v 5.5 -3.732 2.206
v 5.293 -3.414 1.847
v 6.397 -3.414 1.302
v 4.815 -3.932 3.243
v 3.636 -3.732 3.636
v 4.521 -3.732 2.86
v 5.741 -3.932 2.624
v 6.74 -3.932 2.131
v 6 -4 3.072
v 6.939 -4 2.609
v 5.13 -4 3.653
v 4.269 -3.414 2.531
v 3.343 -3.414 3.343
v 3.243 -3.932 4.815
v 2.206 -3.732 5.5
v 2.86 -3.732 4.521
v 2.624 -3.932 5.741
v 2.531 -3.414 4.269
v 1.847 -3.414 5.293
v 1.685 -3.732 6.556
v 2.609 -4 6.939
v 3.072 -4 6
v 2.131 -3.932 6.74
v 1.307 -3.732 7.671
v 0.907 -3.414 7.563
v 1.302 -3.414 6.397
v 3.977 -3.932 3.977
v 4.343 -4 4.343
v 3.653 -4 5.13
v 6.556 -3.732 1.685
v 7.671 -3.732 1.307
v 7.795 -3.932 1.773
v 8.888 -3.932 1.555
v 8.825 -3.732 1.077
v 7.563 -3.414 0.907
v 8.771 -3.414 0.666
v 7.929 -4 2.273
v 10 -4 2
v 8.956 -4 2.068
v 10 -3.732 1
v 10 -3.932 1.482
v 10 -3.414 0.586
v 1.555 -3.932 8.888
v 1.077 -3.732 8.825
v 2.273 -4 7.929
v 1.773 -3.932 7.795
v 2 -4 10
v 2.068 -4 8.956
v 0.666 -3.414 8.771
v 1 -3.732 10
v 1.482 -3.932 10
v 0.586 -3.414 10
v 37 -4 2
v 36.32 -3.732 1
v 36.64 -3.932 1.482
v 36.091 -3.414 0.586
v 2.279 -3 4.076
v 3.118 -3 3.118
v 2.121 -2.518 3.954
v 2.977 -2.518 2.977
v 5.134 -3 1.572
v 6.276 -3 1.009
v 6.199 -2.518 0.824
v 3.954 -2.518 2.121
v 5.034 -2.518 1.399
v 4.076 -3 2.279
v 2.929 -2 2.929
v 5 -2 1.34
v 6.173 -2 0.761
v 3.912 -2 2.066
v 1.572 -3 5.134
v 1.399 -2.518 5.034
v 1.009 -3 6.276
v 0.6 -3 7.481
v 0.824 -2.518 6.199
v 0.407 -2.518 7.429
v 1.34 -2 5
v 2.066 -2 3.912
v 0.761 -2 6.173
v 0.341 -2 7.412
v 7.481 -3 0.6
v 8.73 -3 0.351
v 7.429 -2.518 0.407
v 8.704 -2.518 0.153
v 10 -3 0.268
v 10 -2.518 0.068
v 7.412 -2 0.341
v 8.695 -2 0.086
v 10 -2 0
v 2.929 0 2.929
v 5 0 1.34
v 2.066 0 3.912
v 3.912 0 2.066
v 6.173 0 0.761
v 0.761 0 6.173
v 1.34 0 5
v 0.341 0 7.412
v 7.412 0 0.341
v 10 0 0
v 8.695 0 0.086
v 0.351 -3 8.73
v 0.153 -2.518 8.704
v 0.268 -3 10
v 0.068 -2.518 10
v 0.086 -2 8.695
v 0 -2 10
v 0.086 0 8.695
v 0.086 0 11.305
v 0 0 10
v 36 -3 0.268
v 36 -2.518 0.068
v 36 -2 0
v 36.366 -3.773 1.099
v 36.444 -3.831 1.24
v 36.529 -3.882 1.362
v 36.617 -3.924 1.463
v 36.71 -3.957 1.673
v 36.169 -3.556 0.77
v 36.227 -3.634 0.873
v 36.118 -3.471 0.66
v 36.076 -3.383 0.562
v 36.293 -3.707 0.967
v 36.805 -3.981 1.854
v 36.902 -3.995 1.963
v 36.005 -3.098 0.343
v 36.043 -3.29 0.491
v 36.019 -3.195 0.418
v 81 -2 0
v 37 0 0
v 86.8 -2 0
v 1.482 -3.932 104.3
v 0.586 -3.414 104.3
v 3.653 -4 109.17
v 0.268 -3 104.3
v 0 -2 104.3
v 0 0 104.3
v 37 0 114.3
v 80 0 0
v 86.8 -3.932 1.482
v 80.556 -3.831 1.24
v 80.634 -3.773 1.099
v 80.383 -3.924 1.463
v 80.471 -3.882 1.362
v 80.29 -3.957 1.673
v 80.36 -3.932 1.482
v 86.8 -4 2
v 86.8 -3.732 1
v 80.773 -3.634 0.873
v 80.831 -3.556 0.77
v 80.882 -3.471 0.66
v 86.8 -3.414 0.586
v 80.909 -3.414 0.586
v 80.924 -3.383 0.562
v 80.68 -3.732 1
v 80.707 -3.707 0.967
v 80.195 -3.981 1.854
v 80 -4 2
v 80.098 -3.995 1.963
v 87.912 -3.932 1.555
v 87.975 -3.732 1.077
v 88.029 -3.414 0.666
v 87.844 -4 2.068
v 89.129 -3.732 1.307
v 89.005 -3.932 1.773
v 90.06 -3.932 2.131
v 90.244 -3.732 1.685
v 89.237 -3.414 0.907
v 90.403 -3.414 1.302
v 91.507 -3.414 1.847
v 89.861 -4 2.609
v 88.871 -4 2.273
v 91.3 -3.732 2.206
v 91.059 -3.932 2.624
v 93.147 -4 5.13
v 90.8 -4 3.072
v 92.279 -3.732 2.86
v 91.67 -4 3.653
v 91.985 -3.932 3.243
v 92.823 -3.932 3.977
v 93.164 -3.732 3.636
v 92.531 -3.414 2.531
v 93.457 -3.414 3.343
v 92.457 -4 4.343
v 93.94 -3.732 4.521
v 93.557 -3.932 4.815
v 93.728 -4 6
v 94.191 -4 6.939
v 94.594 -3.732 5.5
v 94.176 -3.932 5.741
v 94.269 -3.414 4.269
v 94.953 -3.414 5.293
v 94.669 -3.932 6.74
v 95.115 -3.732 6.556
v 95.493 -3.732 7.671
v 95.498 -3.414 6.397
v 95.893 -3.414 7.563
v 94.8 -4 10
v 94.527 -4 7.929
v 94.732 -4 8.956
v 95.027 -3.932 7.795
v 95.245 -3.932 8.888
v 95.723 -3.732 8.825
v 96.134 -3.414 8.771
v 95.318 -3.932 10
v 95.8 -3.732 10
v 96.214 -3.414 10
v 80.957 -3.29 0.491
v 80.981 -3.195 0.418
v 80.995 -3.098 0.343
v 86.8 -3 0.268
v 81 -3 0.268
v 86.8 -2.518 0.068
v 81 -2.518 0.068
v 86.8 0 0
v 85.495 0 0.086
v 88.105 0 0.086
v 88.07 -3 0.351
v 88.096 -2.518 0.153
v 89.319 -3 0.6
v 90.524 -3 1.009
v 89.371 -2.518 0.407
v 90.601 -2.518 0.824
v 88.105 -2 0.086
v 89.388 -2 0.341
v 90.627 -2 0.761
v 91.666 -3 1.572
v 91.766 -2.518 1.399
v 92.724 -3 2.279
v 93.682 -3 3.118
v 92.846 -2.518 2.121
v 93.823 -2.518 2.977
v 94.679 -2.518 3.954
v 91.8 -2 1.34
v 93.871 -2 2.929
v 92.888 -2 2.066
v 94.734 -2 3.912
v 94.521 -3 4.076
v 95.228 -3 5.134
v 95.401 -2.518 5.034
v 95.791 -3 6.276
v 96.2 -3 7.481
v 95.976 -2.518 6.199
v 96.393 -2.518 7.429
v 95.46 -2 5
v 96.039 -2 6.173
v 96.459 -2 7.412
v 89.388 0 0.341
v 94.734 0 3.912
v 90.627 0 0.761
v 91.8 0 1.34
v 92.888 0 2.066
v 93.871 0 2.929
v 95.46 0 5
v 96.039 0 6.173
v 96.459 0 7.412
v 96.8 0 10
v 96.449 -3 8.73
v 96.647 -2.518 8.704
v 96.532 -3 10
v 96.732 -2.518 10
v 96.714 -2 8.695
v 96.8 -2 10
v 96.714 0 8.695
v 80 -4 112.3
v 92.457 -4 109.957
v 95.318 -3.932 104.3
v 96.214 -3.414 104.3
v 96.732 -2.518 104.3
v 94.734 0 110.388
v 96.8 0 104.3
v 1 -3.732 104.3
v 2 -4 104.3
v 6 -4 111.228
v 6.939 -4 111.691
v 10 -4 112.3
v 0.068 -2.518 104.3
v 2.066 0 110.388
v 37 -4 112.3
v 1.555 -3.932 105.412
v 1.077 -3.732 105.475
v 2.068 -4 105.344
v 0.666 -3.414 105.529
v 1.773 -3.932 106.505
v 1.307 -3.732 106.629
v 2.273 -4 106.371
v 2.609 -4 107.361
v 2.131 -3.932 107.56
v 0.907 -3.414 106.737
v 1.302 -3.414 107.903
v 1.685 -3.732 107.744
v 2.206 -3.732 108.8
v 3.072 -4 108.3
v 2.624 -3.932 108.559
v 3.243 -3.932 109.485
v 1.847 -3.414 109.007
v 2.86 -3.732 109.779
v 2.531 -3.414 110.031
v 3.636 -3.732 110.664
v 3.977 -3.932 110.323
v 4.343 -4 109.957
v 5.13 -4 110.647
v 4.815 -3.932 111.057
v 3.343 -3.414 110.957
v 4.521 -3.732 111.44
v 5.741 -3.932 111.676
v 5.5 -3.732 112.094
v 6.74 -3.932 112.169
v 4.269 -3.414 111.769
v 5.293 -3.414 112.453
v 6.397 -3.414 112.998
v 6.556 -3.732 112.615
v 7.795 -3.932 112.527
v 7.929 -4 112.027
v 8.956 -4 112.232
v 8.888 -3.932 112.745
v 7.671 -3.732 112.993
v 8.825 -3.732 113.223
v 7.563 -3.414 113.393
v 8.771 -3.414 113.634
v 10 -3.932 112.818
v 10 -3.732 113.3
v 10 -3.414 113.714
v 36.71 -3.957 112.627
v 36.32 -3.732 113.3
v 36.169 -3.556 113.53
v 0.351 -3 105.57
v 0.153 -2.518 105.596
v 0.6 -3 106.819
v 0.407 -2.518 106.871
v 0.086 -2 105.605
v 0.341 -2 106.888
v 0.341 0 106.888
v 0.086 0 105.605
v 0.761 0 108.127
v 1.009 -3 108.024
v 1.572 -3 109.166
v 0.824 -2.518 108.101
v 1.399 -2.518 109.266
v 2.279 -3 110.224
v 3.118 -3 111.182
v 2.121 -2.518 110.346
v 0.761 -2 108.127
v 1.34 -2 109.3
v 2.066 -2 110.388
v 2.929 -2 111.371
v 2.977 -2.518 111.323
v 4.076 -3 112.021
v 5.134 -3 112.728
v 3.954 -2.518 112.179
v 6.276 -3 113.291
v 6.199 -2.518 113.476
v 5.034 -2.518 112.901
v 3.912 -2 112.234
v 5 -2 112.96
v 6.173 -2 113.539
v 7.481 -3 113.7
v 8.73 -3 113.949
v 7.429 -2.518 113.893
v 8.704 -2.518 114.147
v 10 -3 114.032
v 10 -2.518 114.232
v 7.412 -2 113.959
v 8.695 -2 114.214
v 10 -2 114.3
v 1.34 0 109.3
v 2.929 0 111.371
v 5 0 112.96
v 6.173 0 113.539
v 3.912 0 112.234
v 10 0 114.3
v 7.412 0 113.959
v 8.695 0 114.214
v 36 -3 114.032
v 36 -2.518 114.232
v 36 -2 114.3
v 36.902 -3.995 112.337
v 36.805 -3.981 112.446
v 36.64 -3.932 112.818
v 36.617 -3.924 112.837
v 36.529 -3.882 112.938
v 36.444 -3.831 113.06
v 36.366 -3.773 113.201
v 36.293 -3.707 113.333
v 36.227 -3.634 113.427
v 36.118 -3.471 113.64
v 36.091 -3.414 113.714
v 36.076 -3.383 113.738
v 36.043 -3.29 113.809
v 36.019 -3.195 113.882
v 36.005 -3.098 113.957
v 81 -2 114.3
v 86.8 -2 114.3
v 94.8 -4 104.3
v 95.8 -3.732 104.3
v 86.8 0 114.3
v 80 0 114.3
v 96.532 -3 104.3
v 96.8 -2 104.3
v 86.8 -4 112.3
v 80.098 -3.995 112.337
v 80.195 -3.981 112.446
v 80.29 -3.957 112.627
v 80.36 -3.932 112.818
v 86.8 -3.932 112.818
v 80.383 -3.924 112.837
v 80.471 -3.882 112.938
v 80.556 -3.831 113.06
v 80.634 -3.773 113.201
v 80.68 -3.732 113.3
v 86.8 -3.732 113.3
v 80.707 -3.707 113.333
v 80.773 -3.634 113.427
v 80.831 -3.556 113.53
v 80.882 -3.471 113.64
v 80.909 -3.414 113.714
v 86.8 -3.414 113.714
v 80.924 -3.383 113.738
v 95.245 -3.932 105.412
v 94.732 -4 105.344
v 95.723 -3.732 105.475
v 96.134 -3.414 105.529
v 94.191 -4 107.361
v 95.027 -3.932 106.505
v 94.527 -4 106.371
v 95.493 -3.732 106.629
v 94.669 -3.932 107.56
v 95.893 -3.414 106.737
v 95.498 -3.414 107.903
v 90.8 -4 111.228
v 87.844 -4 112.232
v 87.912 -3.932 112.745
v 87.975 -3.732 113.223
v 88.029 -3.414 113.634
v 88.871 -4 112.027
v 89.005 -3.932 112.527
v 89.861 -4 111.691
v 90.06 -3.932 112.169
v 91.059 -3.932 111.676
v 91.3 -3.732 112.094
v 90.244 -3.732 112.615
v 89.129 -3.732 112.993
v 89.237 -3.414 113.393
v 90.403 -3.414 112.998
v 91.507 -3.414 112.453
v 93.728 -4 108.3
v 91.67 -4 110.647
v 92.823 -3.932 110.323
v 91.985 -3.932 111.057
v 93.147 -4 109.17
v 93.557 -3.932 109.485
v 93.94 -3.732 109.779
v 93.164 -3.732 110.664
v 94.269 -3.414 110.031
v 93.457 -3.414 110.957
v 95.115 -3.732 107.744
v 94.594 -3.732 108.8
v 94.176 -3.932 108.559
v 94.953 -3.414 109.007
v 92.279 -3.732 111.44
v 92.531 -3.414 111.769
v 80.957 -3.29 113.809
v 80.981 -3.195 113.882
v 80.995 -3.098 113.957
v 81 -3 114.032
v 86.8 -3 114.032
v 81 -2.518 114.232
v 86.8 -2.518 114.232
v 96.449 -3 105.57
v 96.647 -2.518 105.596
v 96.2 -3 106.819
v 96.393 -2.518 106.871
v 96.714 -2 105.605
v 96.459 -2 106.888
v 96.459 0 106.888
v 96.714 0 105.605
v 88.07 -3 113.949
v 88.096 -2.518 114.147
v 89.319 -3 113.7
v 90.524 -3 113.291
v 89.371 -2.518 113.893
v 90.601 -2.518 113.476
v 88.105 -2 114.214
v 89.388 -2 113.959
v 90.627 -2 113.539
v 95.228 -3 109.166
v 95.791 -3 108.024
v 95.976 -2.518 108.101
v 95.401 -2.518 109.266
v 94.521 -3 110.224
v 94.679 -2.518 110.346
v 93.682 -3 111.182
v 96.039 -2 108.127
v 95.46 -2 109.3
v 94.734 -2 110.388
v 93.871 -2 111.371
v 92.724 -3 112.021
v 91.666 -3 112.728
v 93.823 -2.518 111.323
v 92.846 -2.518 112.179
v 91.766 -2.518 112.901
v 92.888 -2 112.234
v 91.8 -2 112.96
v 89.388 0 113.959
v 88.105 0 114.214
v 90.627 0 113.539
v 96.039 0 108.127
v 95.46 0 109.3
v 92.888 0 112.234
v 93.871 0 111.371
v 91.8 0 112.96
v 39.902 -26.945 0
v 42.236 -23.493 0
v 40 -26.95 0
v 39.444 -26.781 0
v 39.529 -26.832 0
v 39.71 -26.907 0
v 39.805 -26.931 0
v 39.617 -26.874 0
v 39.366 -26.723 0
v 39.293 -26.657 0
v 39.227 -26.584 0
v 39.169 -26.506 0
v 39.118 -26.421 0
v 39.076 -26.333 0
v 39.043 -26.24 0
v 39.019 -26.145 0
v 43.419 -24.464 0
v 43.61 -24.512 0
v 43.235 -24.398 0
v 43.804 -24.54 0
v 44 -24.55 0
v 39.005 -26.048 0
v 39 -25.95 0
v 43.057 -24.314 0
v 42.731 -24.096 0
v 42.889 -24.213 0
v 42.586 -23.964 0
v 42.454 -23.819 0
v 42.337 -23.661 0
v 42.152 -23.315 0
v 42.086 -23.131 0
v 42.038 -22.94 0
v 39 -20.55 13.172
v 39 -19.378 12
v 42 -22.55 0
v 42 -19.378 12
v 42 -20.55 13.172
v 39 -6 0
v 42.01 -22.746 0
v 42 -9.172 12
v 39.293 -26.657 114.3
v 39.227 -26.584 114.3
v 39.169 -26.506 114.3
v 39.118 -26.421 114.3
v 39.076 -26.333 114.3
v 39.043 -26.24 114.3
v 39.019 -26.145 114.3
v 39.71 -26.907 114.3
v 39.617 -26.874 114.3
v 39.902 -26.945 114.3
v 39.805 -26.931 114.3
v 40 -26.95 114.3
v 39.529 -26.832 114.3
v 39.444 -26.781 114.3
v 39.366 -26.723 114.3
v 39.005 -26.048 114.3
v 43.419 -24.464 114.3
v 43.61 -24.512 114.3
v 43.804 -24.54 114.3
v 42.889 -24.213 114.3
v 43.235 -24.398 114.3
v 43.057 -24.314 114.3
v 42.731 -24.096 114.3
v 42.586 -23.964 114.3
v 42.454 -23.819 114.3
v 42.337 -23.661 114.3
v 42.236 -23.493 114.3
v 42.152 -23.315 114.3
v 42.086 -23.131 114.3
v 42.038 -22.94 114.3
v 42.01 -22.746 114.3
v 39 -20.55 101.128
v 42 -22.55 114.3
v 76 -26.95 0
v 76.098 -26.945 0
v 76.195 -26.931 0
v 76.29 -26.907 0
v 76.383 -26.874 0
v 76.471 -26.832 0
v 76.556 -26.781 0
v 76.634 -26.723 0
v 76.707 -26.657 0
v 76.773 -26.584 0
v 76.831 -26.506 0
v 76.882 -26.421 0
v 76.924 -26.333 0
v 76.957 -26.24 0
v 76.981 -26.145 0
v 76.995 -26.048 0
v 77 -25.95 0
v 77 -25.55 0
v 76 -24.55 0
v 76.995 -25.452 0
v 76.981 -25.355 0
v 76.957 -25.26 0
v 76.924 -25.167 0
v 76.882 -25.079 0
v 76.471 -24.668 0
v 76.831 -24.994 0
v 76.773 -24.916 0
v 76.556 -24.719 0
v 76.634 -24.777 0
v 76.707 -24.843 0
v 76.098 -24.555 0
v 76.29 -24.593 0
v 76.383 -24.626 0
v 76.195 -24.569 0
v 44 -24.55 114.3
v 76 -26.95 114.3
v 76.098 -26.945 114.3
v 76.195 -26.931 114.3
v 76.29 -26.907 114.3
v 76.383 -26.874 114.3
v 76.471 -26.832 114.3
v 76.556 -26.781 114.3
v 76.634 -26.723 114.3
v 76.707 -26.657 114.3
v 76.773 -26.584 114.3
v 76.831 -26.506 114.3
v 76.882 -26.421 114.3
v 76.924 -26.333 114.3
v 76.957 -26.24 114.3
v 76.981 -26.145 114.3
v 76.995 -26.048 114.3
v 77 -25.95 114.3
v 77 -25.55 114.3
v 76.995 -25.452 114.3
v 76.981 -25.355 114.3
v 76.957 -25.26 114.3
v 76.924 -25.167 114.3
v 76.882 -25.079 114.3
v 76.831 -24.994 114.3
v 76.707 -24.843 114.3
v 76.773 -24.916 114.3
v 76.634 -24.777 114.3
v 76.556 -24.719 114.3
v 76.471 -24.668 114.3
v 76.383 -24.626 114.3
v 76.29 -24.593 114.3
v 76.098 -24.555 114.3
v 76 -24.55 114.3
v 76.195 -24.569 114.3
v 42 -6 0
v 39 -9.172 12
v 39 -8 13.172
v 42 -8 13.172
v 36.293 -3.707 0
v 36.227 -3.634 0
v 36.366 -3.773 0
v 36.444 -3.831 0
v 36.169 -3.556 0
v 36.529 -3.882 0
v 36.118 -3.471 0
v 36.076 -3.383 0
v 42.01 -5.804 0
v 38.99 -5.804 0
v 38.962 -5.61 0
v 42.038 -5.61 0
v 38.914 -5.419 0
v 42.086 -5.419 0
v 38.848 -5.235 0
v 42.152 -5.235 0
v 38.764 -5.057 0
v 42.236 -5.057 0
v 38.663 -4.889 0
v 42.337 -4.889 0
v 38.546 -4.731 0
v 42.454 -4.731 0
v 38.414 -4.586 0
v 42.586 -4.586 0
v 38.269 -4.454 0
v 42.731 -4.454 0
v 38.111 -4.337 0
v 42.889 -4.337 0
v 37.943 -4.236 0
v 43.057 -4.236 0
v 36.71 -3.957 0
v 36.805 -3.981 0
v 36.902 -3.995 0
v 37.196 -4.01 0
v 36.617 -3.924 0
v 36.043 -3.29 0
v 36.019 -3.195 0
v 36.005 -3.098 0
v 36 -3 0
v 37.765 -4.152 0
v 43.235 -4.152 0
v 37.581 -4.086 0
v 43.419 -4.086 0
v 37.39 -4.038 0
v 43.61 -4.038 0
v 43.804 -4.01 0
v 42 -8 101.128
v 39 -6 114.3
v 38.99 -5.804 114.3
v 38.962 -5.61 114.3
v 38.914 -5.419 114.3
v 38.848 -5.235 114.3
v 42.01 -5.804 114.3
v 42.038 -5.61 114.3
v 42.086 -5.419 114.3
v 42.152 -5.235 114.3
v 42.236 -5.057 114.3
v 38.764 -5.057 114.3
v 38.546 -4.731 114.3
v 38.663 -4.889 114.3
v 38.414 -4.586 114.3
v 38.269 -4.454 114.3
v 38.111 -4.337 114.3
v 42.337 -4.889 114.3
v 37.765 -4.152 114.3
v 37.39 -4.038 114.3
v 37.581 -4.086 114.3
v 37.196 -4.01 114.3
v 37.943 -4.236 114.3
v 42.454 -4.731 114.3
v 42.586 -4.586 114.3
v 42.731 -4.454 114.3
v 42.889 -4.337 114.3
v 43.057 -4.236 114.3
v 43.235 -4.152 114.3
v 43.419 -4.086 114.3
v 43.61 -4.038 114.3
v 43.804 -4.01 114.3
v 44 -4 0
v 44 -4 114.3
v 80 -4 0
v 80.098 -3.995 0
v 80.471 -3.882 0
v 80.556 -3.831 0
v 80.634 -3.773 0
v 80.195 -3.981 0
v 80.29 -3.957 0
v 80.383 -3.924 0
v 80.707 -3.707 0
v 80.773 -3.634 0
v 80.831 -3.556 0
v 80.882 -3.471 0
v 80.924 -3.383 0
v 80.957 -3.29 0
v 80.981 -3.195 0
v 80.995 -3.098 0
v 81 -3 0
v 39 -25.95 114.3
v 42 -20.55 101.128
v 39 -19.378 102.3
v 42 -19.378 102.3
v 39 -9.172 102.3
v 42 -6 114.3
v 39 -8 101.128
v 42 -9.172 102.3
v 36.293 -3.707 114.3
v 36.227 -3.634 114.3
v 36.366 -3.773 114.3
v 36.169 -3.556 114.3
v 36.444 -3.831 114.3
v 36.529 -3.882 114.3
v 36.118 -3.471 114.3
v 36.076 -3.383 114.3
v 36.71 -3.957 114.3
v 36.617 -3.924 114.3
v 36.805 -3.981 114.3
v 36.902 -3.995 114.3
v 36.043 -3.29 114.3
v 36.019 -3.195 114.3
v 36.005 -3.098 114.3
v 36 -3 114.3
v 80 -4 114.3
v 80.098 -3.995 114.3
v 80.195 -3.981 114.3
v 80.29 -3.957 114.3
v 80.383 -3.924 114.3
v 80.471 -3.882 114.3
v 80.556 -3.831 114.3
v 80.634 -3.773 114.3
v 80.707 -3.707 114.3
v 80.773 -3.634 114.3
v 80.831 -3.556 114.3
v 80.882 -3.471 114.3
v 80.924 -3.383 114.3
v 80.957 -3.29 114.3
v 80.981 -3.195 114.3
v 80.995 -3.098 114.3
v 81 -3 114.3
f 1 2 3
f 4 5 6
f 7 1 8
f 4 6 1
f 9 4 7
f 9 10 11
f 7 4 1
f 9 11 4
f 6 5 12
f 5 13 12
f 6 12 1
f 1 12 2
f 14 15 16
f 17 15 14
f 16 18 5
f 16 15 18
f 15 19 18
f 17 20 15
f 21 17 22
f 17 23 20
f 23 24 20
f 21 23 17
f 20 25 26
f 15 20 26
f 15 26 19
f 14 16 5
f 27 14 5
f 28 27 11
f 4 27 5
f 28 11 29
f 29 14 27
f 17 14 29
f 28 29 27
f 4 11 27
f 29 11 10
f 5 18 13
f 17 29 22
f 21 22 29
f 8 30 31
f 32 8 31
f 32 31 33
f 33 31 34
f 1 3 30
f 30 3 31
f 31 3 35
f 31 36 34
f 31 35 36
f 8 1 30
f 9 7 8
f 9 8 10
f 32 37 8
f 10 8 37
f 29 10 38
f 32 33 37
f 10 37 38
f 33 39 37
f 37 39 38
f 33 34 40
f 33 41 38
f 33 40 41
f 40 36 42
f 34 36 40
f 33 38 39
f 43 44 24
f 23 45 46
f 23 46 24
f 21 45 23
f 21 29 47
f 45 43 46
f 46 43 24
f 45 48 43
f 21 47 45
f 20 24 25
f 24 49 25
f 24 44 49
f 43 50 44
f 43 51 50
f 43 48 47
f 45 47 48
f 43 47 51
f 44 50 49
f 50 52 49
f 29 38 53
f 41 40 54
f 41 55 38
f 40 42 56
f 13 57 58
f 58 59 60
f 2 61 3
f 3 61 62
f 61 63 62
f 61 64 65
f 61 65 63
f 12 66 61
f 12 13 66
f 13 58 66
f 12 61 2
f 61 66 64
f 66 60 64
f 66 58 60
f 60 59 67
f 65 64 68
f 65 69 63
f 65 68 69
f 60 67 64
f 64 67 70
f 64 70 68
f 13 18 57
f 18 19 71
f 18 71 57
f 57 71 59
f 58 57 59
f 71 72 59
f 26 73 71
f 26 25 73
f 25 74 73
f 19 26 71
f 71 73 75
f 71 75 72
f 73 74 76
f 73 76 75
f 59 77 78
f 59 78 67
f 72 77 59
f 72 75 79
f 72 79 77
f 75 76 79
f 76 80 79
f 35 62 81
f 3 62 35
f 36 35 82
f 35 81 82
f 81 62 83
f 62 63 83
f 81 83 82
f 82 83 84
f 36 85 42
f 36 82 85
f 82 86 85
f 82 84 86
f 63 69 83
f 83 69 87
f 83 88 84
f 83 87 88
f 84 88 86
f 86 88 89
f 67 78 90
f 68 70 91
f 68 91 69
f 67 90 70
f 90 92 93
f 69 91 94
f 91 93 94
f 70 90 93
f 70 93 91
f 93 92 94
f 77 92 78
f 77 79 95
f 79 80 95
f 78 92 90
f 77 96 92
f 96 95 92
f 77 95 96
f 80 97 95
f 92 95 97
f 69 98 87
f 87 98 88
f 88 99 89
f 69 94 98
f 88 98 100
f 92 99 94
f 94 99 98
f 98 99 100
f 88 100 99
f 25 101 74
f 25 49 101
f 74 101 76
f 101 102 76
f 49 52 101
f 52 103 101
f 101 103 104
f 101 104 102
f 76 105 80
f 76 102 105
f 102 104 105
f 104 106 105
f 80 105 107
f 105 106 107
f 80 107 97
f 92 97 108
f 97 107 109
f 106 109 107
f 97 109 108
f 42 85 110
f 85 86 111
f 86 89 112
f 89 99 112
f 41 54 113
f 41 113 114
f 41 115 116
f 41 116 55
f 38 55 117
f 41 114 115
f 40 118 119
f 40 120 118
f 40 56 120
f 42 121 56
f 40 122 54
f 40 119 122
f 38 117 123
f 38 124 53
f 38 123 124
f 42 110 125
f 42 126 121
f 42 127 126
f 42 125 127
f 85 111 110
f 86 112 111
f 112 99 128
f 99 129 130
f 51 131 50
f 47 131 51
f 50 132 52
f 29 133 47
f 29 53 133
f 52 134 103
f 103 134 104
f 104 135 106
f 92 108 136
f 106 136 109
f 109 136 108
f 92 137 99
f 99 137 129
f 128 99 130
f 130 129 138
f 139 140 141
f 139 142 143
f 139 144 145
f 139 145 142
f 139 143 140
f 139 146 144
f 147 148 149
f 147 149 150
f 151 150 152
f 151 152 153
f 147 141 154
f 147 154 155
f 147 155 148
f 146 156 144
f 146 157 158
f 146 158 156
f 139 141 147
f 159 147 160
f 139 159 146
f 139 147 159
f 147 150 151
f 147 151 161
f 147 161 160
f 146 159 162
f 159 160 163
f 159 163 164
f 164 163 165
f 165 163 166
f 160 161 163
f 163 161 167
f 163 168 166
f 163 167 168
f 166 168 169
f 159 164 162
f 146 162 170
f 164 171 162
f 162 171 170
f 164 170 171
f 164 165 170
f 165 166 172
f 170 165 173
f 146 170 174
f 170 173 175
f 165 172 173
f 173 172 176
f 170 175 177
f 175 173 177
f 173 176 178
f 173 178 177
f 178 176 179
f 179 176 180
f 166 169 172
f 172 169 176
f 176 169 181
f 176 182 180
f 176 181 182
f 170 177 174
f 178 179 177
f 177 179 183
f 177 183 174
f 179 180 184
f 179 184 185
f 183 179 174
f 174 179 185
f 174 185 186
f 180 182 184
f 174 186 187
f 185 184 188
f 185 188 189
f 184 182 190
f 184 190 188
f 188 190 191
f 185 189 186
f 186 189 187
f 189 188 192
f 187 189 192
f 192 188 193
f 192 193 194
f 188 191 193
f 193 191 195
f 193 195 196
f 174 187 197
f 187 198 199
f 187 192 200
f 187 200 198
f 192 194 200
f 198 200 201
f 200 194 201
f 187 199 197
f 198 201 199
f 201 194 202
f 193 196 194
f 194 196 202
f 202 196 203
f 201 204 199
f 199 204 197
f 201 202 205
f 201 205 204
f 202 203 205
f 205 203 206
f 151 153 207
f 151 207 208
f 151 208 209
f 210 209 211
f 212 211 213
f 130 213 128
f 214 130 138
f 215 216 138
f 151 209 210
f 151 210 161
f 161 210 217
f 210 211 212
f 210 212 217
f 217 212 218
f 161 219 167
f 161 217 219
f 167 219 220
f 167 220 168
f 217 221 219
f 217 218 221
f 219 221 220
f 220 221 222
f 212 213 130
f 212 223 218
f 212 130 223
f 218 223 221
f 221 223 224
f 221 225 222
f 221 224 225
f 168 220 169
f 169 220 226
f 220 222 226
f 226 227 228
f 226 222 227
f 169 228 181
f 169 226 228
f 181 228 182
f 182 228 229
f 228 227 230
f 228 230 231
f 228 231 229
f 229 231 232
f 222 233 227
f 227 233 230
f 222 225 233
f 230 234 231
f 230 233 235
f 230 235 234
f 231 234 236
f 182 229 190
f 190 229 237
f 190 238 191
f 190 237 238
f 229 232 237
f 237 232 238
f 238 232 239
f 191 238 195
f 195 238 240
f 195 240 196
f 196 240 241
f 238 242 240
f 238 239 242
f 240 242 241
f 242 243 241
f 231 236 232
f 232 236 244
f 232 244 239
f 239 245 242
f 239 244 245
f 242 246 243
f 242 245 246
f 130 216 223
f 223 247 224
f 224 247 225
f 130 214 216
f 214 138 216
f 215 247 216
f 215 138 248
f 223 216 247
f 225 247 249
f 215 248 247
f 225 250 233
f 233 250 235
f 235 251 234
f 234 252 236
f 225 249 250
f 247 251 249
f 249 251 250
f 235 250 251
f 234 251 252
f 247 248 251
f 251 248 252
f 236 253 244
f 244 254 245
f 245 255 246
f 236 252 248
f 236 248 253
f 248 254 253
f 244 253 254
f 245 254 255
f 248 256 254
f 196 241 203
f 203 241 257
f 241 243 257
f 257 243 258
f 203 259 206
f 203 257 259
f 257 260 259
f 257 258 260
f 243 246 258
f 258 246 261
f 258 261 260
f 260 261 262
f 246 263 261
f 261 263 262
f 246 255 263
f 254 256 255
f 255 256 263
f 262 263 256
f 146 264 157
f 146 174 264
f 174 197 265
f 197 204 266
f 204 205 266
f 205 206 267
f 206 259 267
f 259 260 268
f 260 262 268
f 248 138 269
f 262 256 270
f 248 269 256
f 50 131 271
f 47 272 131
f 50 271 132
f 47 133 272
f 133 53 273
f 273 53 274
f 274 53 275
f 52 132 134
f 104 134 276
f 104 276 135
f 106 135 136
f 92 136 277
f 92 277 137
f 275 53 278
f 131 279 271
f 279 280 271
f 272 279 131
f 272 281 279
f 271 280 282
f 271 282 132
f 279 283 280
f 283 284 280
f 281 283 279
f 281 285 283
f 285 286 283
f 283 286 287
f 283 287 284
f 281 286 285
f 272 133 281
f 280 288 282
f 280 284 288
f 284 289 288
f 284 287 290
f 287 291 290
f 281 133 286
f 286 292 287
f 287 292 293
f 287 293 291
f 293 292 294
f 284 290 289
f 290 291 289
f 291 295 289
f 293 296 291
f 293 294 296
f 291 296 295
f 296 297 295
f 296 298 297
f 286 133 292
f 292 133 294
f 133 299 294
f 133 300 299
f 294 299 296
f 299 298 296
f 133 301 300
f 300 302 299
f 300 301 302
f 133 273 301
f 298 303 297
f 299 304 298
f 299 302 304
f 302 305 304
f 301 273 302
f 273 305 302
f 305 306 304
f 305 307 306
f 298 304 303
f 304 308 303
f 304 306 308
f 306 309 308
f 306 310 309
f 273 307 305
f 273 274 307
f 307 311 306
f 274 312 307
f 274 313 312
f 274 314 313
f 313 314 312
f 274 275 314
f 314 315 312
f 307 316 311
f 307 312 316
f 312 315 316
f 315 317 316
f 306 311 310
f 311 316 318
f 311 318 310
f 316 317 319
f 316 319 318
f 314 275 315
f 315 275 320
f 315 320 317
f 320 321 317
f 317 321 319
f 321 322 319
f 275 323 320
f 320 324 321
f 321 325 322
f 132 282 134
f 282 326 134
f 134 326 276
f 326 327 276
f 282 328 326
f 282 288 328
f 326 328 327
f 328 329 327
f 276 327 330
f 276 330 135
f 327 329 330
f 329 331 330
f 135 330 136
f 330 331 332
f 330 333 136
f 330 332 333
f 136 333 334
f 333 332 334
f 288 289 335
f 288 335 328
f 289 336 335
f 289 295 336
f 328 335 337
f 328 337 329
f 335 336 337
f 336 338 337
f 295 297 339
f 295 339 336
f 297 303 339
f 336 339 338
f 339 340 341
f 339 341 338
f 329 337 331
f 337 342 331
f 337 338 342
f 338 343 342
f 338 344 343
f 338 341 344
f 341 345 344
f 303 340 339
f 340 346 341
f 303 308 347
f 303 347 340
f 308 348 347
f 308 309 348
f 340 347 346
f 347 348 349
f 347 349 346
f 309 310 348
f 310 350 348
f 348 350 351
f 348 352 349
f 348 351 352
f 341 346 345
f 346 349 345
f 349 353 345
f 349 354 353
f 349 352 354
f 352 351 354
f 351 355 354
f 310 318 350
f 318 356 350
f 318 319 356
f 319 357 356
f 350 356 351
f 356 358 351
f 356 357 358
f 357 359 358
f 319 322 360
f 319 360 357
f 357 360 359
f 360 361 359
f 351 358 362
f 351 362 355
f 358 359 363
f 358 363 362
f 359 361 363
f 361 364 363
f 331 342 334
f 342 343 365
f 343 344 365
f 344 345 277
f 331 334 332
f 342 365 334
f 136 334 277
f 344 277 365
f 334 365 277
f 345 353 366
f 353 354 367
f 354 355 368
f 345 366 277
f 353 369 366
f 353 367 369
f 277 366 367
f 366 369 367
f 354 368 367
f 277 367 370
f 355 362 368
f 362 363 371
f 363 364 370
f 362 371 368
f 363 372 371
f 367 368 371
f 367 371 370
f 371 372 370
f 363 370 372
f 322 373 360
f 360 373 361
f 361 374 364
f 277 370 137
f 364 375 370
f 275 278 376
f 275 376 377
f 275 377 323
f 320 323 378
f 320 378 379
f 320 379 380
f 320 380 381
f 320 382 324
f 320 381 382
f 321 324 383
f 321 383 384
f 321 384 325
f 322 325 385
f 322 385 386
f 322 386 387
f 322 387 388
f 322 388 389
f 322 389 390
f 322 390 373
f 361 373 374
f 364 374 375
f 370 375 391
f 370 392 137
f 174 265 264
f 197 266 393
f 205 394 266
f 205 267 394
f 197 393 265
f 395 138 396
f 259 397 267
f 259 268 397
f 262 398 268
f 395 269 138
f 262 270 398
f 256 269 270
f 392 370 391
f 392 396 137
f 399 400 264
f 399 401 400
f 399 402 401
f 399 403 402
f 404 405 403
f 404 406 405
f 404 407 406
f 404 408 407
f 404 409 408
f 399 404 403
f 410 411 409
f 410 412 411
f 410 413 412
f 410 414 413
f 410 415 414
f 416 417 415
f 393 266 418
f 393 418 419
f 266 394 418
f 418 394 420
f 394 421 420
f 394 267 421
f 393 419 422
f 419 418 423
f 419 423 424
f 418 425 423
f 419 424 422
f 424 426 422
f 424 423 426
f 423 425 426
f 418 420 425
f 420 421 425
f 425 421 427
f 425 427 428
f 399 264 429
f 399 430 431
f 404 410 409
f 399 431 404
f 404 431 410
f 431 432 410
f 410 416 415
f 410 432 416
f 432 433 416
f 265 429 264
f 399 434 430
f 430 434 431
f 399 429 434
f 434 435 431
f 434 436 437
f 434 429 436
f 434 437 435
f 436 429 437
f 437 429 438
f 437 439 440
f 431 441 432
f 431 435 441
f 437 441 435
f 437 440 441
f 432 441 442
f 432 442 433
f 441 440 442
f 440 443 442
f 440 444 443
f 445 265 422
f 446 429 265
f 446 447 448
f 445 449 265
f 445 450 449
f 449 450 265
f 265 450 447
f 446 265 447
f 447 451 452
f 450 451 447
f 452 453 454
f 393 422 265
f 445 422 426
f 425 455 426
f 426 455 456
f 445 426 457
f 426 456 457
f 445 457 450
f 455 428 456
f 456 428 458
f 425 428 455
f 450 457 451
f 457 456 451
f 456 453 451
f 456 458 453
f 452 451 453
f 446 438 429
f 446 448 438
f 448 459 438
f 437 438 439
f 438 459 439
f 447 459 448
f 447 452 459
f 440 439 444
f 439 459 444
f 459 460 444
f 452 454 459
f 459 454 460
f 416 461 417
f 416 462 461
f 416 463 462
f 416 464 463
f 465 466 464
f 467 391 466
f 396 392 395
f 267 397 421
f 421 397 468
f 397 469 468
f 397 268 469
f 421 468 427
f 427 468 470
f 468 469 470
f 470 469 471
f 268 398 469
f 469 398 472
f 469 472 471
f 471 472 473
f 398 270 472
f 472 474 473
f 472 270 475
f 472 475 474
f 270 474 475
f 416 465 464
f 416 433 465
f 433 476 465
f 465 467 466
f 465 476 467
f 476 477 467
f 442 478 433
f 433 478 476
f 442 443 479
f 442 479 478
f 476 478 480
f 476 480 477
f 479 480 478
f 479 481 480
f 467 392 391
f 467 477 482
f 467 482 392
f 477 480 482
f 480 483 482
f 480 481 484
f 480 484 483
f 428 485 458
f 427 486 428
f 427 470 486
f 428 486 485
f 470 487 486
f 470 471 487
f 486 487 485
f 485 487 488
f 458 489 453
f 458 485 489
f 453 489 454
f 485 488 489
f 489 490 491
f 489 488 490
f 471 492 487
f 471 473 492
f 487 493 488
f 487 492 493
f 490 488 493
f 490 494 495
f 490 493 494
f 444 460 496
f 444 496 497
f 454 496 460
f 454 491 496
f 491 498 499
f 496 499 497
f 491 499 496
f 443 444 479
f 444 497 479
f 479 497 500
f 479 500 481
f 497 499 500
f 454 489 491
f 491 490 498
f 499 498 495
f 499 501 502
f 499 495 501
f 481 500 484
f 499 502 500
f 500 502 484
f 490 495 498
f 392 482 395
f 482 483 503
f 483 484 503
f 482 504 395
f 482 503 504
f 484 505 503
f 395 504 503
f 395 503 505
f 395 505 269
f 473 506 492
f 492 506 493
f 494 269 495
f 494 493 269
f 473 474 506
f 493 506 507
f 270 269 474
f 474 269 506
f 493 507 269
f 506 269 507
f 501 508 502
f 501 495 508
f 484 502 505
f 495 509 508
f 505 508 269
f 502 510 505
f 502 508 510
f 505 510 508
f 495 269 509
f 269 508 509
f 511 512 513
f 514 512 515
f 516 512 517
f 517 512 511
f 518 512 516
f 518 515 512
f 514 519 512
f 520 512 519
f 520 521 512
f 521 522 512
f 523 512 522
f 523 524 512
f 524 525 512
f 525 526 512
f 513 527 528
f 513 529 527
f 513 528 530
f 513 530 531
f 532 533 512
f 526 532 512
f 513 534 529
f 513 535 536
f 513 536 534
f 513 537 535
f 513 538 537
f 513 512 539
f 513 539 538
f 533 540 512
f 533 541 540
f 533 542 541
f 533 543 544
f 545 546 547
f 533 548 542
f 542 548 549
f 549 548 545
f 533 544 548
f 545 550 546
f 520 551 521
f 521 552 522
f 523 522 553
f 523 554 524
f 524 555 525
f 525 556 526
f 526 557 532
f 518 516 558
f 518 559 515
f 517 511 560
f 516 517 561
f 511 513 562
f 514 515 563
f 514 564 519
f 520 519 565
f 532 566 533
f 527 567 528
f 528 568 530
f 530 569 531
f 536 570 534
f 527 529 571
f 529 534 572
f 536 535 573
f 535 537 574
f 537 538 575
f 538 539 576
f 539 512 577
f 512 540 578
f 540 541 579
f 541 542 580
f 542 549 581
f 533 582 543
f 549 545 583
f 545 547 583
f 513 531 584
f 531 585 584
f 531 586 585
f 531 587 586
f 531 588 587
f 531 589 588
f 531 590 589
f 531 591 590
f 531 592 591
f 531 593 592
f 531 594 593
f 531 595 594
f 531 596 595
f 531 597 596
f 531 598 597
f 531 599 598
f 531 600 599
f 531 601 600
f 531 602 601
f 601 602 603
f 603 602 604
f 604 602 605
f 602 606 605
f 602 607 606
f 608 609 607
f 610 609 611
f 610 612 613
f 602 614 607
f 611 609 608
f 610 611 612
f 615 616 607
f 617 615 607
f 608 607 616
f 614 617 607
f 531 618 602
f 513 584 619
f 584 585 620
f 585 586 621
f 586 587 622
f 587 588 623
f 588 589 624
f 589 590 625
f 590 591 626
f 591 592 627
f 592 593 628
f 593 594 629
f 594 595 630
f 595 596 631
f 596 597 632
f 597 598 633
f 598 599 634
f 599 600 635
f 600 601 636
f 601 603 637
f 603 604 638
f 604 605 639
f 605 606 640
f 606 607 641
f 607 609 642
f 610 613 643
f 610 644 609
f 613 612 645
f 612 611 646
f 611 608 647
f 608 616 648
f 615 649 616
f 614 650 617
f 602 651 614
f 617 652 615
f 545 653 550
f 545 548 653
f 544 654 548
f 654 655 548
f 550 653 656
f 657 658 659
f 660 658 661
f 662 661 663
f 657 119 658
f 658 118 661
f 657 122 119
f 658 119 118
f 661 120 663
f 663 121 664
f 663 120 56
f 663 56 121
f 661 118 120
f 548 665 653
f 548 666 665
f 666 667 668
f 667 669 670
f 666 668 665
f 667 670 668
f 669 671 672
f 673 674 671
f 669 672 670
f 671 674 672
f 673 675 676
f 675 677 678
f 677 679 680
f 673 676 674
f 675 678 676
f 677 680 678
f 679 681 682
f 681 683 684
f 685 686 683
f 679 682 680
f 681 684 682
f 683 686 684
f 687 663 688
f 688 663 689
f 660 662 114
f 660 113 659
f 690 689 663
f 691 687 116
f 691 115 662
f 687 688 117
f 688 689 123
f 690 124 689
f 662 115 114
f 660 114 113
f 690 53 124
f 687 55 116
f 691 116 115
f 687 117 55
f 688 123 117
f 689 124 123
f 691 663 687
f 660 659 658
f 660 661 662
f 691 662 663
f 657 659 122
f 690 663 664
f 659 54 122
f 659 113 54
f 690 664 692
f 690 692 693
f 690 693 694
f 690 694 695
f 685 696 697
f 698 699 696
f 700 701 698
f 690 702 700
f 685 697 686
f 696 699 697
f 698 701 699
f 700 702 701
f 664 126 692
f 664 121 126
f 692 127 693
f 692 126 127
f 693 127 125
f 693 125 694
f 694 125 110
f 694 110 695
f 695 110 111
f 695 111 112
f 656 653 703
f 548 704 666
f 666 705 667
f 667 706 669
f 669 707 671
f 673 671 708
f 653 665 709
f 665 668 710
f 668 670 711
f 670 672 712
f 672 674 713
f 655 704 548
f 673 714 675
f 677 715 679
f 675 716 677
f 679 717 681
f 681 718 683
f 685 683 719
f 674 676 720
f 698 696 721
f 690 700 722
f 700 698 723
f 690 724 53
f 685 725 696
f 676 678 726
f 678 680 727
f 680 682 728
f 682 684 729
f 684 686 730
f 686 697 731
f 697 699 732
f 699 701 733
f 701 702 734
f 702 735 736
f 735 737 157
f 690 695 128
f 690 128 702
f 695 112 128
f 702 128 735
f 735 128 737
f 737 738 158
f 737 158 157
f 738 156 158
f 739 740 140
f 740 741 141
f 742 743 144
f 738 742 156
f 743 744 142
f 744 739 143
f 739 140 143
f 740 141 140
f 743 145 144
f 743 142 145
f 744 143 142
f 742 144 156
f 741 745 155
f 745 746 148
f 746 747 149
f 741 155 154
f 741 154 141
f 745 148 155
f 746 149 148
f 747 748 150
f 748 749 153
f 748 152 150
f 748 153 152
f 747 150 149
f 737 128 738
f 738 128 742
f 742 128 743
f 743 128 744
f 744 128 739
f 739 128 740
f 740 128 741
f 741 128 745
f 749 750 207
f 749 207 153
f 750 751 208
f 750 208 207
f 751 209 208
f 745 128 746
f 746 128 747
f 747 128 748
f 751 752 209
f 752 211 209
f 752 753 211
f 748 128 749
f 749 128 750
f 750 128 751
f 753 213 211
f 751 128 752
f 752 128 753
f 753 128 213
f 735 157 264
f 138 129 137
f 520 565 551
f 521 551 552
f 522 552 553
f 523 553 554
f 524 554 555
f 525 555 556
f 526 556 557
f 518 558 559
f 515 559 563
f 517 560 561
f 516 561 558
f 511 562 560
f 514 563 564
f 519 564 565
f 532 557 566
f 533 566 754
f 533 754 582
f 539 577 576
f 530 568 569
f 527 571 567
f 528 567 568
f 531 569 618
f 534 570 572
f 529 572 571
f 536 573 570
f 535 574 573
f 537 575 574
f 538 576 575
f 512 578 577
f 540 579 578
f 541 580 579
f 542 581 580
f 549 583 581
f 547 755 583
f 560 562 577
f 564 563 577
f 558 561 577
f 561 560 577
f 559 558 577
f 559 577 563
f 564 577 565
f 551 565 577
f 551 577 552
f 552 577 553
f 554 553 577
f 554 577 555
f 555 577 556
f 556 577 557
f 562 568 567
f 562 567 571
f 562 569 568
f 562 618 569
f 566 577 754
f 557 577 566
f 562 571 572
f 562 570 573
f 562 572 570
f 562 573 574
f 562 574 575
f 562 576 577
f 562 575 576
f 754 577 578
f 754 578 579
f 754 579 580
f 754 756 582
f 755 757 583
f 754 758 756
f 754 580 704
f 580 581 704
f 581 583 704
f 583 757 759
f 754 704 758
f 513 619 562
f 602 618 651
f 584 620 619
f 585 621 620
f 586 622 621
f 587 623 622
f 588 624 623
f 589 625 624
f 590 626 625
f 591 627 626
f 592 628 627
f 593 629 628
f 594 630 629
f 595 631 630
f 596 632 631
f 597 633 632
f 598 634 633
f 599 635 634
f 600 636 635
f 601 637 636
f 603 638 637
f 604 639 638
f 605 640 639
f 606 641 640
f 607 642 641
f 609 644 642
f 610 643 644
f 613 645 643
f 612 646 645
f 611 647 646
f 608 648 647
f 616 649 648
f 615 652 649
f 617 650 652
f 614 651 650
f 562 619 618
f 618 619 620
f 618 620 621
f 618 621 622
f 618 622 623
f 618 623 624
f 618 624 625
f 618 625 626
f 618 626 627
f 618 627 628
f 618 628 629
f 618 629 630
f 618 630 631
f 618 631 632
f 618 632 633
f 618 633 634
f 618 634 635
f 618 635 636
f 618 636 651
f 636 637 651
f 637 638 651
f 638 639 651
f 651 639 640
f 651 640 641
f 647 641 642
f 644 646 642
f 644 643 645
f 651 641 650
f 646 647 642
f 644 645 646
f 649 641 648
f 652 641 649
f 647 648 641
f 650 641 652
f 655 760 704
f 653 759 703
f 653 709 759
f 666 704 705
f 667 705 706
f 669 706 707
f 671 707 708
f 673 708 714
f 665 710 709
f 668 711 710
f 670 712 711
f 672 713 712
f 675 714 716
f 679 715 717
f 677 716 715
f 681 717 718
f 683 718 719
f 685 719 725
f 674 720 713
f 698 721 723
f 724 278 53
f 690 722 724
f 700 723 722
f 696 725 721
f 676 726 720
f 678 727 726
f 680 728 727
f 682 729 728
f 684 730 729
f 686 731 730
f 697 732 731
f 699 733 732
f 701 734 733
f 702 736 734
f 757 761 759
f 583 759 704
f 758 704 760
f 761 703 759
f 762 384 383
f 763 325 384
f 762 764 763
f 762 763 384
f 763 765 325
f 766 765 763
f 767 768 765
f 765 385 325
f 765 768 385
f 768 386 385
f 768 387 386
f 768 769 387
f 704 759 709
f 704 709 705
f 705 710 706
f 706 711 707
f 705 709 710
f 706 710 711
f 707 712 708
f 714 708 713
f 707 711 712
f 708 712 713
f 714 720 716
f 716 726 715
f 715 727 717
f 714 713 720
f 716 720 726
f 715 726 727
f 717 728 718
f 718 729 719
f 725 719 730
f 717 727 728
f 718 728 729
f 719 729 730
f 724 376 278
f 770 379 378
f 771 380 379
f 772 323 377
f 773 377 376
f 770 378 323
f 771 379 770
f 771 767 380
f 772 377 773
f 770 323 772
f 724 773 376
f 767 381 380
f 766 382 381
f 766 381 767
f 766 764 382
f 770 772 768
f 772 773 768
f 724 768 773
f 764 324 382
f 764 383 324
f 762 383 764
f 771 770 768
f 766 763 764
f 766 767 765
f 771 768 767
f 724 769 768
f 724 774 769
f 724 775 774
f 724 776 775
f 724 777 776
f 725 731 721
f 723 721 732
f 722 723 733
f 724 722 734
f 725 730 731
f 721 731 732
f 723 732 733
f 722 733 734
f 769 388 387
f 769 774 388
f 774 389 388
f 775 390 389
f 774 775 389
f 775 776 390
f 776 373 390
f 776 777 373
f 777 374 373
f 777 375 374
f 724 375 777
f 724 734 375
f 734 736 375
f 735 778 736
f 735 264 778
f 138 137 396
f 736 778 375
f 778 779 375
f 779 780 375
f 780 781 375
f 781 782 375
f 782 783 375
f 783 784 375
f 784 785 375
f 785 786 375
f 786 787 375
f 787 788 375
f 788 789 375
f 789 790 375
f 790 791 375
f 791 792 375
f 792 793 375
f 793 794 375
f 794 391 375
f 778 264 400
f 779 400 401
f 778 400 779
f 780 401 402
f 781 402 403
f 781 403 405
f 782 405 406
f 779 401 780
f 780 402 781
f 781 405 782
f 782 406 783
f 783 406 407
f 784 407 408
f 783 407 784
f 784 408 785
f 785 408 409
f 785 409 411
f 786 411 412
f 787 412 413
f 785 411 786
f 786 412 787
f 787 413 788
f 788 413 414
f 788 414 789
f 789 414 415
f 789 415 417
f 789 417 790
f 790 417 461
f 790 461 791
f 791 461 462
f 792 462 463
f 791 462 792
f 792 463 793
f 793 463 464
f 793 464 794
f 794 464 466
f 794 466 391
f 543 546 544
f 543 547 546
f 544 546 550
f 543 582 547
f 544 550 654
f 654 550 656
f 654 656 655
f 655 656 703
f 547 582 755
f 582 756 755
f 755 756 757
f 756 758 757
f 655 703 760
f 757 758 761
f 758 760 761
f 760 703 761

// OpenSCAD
// file: lib/geometry.scad
// Where the tilted backplate and the Car Thing sit, as functions the parts and
// the checks share.
//
// The backplate is built in the Car Thing's own frame ("local"): x along its
// width (0 at its left edge), y out of its back face (0 at the back face,
// ct_t at the screen), z up its face (0 at its top edge, -ct_h at the bottom).
// ct_place() turns that frame into the mount's coordinates.

// The magnet pocket, a web, and the nut pocket opening on the hidden back.
// The stud is cut short to fit (stud_cut() in magnet.scad).
function backplate_thickness() = magnet_t + magnet_web + nut_t + 0.4;

// Leaning back by `tilt` about X: (y, z) -> (y cos - z sin, y sin + z cos).
function lean(p) = [p[0] * cos(tilt) - p[1] * sin(tilt), p[0] * sin(tilt) + p[1] * cos(tilt)];

// The backplate's back face starts ct_reach past the screen face, and the Car
// Thing's top-front corner sits ct_top_gap below the monitor's bottom edge.
function ct_origin() = [
  monitor_depth + ct_reach + backplate_thickness() * cos(tilt),
  -ct_top_gap - ct_t * sin(tilt)
];

// The rod meets the Car Thing joint_x from its tab end (joint.scad); it may
// overhang the plate.
function ct_x0() = rod_x() - joint_x;

// Local [x, y, z] -> mount [x, y, z].
function ct_to_global(p) =
  let (o = ct_origin(), r = lean([p[1], p[2]]))
  [p[0] + ct_x0(), o[0] + r[0], o[1] + r[1]];

// Mount [x, y, z] -> local [x, y, z]: the inverse of ct_to_global.
function global_to_ct(g) =
  let (o = ct_origin(), y = g[1] - o[0], z = g[2] - o[1])
  [g[0] - ct_x0(), y * cos(tilt) + z * sin(tilt), -y * sin(tilt) + z * cos(tilt)];

// The owner's eyes, in the mount's coordinates. The owner sits centred on the
// monitor, and the Car Thing's centre is mount_x to the right of that.
function eye_global() = [ct_x0() + ct_w / 2 - mount_x, monitor_depth + eye[0], eye[1]];

// True when the Car Thing's body hides a point (in its local frame) from the
// owner's eyes. A point behind the back face (y < 0) is hidden when the line
// to the eye passes through the back face inside its outline (shrunk by the
// edge margin, with rounded corners); a point in front of it must lie inside
// that outline.
function in_ct_outline(q) =
  let (
    r = ct_corner_r - ct_edge_margin,
    cx = min(max(q[0], ct_corner_r), ct_w - ct_corner_r),
    cz = min(max(q[2], -ct_h + ct_corner_r), -ct_corner_r)
  ) norm([q[0] - cx, q[2] - cz]) <= r;
function hidden_from_eye(p) =
  let (e = global_to_ct(eye_global()))
  p[1] >= 0 ? in_ct_outline(p)
            : let (t = (0 - e[1]) / (p[1] - e[1])) in_ct_outline(e + t * (p - e));

module ct_place() {
  o = ct_origin();
  translate([ct_x0(), o[0], o[1]]) rotate([tilt, 0, 0]) children();
}

// The inverse of ct_place(): mount coordinates back to the local frame.
module ct_unplace() {
  o = ct_origin();
  rotate([-tilt, 0, 0]) translate(-[ct_x0(), o[0], o[1]]) children();
}

// The Car Thing's side profile after tilt, as [y, z] corners:
// back-top, front-top, front-bottom, back-bottom.
function ct_corners() = [
  for (c = [[0, 0], [ct_t, 0], [ct_t, -ct_h], [0, -ct_h]])
    let (g = ct_to_global([0, c[0], c[1]])) [g[1], g[2]]
];

// Height of the line from the owner's eyes to the screen's bottom edge, at y.
function sight_line_z(y) = (y - monitor_depth) * eye[1] / eye[0];

function lowest_z() = min([for (c = ct_corners()) c[1]]);

// The model reads as the owner sees it, x to their right and y toward them,
// which makes a left-handed frame; OpenSCAD's is right-handed. So every
// printed part and render goes out mirrored in x, and the real part matches.
function as_owner_pt(p) = [-p[0], p[1], p[2]];
module as_owner() { mirror([1, 0, 0]) children(); }
// file: lib/soft.scad
// Rounded building blocks for the softened parts.

// A slab from y = -t to y = 0, spanning x = [x0, x1] and z = [z0, z1], with
// its corners rounded by r (seen along y) and its back edges (at y = -t)
// rounded by rr. The front face (y = 0) stays flat for adhesive or contact.
module soft_slab(x, z, t, r, rr) {
  hull() for (cx = [x[0] + r, x[1] - r], cz = [z[0] + r, z[1] - r])
    translate([cx, 0, cz]) {
      rotate([90, 0, 0]) cylinder(r = r, h = t - rr, $fn = 48);
      translate([0, -t + rr, 0]) rotate([90, 0, 0]) rotate_extrude($fn = 48)
        translate([r - rr, 0]) circle(r = rr, $fn = 24);
    }
}

// A box [x0..x1] x [y0..y1] x [z0..z1] with every edge rounded by r.
module soft_box(x, y, z, r) {
  hull() for (cx = [x[0] + r, x[1] - r], cy = [y[0] + r, y[1] - r], cz = [z[0] + r, z[1] - r])
    translate([cx, cy, cz]) sphere(r = r, $fn = 24);
}

// 2D: fill concave corners with radius fillet, then round convex corners by
// round (which must be under half the thinnest wall, or the wall vanishes).
module soft_2d(fillet, round) {
  offset(r = round) offset(delta = -round) offset(r = -fillet) offset(delta = fillet) children();
}
// file: lib/shelf.scad
// One shelf slot: a floor and a tall lip along the long side, no end walls.
// Attaches to a plate's back face at y = 0 and reaches into -Y; the floor's
// top is z = 0. The item stands ports-down: the floor is open down the middle
// for its plugs, and the item rests on a ledge each side. The floor stays
// solid at each end, and that is what ties the lip to the plate.

function slot_inner() = item_t + slot_clear;
function slot_depth() = slot_inner() + wall;
// How far the slot reaches below its floor's top: the floor and the fillet
// under it. No gussets: they would hang below the plate.
function shelf_below() = floor_t + soft_r;
// The standalone shelf's plate corners, and its slot's height above the
// plate's bottom: as on the main mount, so the plugs end above it.
function standalone_r() = plate_r;
function standalone_slot_z() = shelf_z;
// The standalone shelf's plate: tall enough to resist peel and to back the item.
function standalone_h() = max(3 * slot_depth(), standalone_slot_z() + item_h + 4);

// How far below the floor's top the slot reaches: the floor and the fillet under it.
function shelf_reach() = floor_t + soft_r + 1;

// The slot's side profile in (y, z), with a stub of the plate behind it so
// the floor's root gets a fillet; inside corners get a soft_r fillet and
// outside corners as much round as the 2.4 mm lip allows.
module shelf_profile() {
  d = slot_depth();
  lo = shelf_reach();
  soft_2d(soft_r, min(soft_r, wall / 2 - 0.2)) union() {
    translate([-d, -floor_t]) square([d + 0.01, floor_t]);
    translate([-d, 0]) square([wall, lip_h]);
    translate([0, -lo]) square([plate_t, lo + lip_h + 4]);
  }
}

// The item standing ports-down in a slot of length len, centred along it,
// with its plugs below it. The plugs run its whole length, since their
// positions along the edge vary. It sits half a millimetre up, on the
// fillets in the slot's inside corners. For the clash test.
module shelf_item(len) {
  x0 = (len - item_len) / 2;
  translate([x0, -(slot_inner() + item_t) / 2, 0.5]) cube([item_len, item_t, item_h]);
  translate([x0, -(slot_inner() + item_plug_t) / 2, 0.5 - item_plug_drop]) cube([item_len, item_plug_t, item_plug_drop]);
}

module shelf_slot(len) {
  d = slot_depth();
  lo = shelf_reach();
  difference() {
    // The profile, extruded along x, with the plate stub clipped back into the plate.
    intersection() {
      rotate([90, 0, 90]) linear_extrude(len) shelf_profile();
      translate([-1, -d - 1, -lo]) cube([len + 2, d + 1 + plate_t, lo + lip_h + 6]);
    }
    // The opening for the plugs, between the ledges and the solid ends, its
    // corners chamfered at 45 degrees.
    translate([0, 0, -lo - 1]) linear_extrude(lo + 2)
      offset(delta = 2, chamfer = true) offset(delta = -2)
        translate([floor_end, -slot_inner() + ledge]) square([len - 2 * floor_end, slot_inner() - 2 * ledge]);
  }
}
// file: params.scad
// Every dimension of the monitor mount, in millimetres and degrees.
// Lines marked MEASURE are placeholders until the owner measures the real part.
//
// Coordinates: origin at the monitor's bottom edge, on its back face, at the
// plate's left edge. +X runs to the owner's right, +Y toward the owner (the
// screen face is at y = monitor_depth), +Z up (the bottom edge is z = 0).
// That frame is left-handed, so every output is mirrored in x (as_owner() in
// lib/geometry.scad) to make the printed parts match it.

$fn = 64;

// Monitor (Kuycon G27P)
monitor_depth = 22;
tilt = 15;              // backplate leans back from the screen's plane
ct_top_gap = 6;         // Car Thing's top-front edge sits this far below the bottom edge
ct_reach = 0;           // the backplate's back face starts this far past the screen face

// Car Thing, from the owner's photos and measurements (shape confirmed
// 2026-11-06). Its back has one raised flat platform in the middle, with the
// steel the magnet grips, curving down to a thinner end each side: the tab
// end on the left seen from the front, the dial end on the right. The USB-C
// port is in the platform's end wall, facing the tab end. The dial is on the
// front face at the dial end; four buttons are on the top edge.
ct_w = 116;             // measured: width (body, without the dial)
ct_h = 64;              // measured: height
ct_t = 15;              // measured: thickness at the platform
ct_corner_r = 6;        // MEASURE body corner radius seen from the back
ct_edge_margin = 1;     // the body's edges are rounded; count this much of them as see-through
ct_thin_tab = [0, 46];  // measured: x range of the thin end at the tab end
ct_platform = [46, 92]; // measured: x range of the raised platform
ct_thin_dial = [92, 116];  // measured: x range of the thin end at the dial end
ct_step = 5;            // measured 5-6: how far the thin ends sit below the platform
ct_port_z = 32;         // from photo: port centred top to bottom
ct_port_y = 2.2;        // from photo: port centre ~2.0-2.3 below the platform's surface
ct_port_depth = 7;      // MEASURE how far a plug can go into the port
ct_tab = [32, 8, 3];    // MEASURE tab past the tab end: [centre below top, height, how far out]
ct_dial_overhang = 4;   // MEASURE how far the dial sticks out past the dial end

// Magnet (Magnetpro pot magnet)
magnet_d = 43;
magnet_t = 6.1;
stud_d = 6.35;          // 1/4"-20
stud_len = 12.7;        // as bought; cut to stud_cut() before fitting
nut_af = 11.11;         // 1/4-20 hex nut, 7/16" across flats
nut_t = 5.56;
magnet_web = 2;         // plastic between the magnet pocket and the nut pocket
fit = 0.3;              // printed clearance
// The magnet sits centred on the platform: [from left, from top].
ct_magnet_center = [(ct_platform[0] + ct_platform[1]) / 2, ct_h / 2];

// USB-C plug breakout fixed to the mount
plug_w = 9;             // MEASURE plug shell width
plug_t = 3.3;           // MEASURE plug shell thickness
plug_len = 6.5;         // MEASURE length the plug sticks out past the board
plug_board = [12, 15, 1.6];  // MEASURE board [width, length, thickness]
plug_shoulder = 1.2;    // plastic over the board's plug end; the plug passes through it

// Cord from the pocket to the plug
cord_d = 4;             // MEASURE
cord_bend_r = 10;       // MEASURE smallest bend it takes without force

// The dock: the hidden backplate behind the Car Thing
bp_inset = 4;           // the backplate's outline sits this far inside the Car Thing's
bp_r = 6;               // its corner radius; its back edges round at bp_r / 2
dock_floor_wall = 1;    // the plug block's wall toward the thin end's surface

// The rod: rod_d where it shows, rod_d_hidden behind the Car Thing. The owner
// chose one even 22 mm rod (2026-11-04), so it looks the same from any seat
// height.
rod_d = 22;
rod_d_hidden = rod_d;
rod_bend_r = 14;        // the bend's centreline radius
$fn_rod = 96;

// Stiffness under a button press (stiffness.scad)
petg_E = 2000;          // MPa
petg_G = 750;           // MPa
press_N = 5;            // a firm press
ct_end_buttons = [13, 103];  // MEASURE x of the top row's end buttons
// mm, the most a press may move the Car Thing. 0.1 while the rod met the Car
// Thing's centre; it now meets it off-centre (joint_x), behind the plug board.
sag_max = 0.14;
finger_d = 16;          // a fingertip pressing the top buttons

// Plate
plate_t = 4;
plate_r = 10;           // the plates' corner radius
soft_r = 2;             // round on every hidden edge
plate_w = 200;
plate_h = 120;
wall = 2.4;
rib_w = 3;              // the plate's ribs, on its back

// Shelf slots. The items stand ports-down, with plugs in their ports, so the
// floor is open down the middle for the plugs and the item rests on a ledge
// each side.
slot_len = 114.3;       // 4.5 in
item_t = 19.05;         // 3/4 in
item_len = 76.2;        // 3 in
item_h = 50.8;          // 2 in; items stand this tall
item_plug_drop = 40;    // MEASURE how far the plugs stick out below the item, to where the cable can bend
item_plug_t = 10;       // MEASURE the plugs' thickness across the item (ports assumed centred in it)
slot_clear = 1.5;
lip_h = 35;             // past the item's middle, so it can't tip out over it
floor_t = 3;
ledge = 4;              // the item rests on this much floor each side of the opening
floor_end = 12;         // solid floor at each end: all that ties the lip to the plate
shelf_z = item_plug_drop + 2;  // floor top above the plate's bottom edge, so the plugs end above it

// Joints (lib/joint.scad). The mount prints as three parts glued together:
// the plate, the rod and the dock.
socket_depth = 24;      // the rod's top end goes this far up into the pocket's base
socket_flat = 2;        // the D flat on the rod's top end, on the side toward the monitor
socket_cone = 50;       // the socket's top narrows to the cord channel at this angle from horizontal
joint_x = 41;           // the rod meets the dock this far from the tab end: behind the plug board, clear of the magnet
flange_d = 38;          // the flange on the rod's front end, glued flat to the dock's back
flange_t = 4;
spigot_d = 12;          // the teardrop spigot from the flange into the dock, point down, so it fits one way
spigot_len = 6;         // short: the dock is only backplate_thickness() deep

// Pocket for the charge-through cable, C-to-A adapter and dongle
pocket = [60, 30, 22];  // MEASURE contents [x, depth, height]
// The pocket's floor, above the plate's bottom edge: over the rod's socket
// and its cone, in the pocket's solid base.
pocket_z0 = socket_depth + (rod_d + fit - cord_d - 1) / 2 * tan(socket_cone) + wall;
pocket_frame = 4;       // retaining frame around the open outer face
rib_z0 = pocket_z0 + pocket[2] + wall + 2;  // plate ribs start above the pocket; none runs behind the shelf

// Owner's seat
eye = [600, 150];       // MEASURE [distance from screen, height above bottom edge]
mount_x = 150;          // MEASURE the Car Thing's centre, right of the monitor's centre (owner sits centred)
desk_clear = 120;       // MEASURE monitor bottom edge to desk

// Printer (Prusa MK4, with margin)
bed = [240, 200];
// main file
// The standalone shelf: its own adhesive plate and one slot, to stick
// anywhere on the monitor's back. Prints on its end.
include <params.scad>
include <lib/shelf.scad>
include <lib/soft.scad>
include <lib/geometry.scad>

//   part = "shelf": the printable part, standing on one end of its slot as it prints
//   part = "clash": where the item, standing in the slot with its plugs,
//                   meets the shelf; empty when it fits (test/mount.test.sh)
part = "shelf";

// The plate is as wide as the slot, whose ends print flat on the bed.
module standalone_shelf() {
  soft_slab([0, slot_len], [0, standalone_h()], plate_t, standalone_r(), soft_r);
  translate([0, -plate_t, standalone_slot_z()]) shelf_slot(slot_len);
}

if (part == "shelf") {
  // As owned, x runs from -slot_len to 0; turned up, the x = 0 end sits on the bed.
  rotate([0, 90, 0]) as_owner() standalone_shelf();
} else if (part == "clash") {
  intersection() {
    standalone_shelf();
    translate([0, -plate_t, standalone_slot_z()]) shelf_item(slot_len);
  }
}
